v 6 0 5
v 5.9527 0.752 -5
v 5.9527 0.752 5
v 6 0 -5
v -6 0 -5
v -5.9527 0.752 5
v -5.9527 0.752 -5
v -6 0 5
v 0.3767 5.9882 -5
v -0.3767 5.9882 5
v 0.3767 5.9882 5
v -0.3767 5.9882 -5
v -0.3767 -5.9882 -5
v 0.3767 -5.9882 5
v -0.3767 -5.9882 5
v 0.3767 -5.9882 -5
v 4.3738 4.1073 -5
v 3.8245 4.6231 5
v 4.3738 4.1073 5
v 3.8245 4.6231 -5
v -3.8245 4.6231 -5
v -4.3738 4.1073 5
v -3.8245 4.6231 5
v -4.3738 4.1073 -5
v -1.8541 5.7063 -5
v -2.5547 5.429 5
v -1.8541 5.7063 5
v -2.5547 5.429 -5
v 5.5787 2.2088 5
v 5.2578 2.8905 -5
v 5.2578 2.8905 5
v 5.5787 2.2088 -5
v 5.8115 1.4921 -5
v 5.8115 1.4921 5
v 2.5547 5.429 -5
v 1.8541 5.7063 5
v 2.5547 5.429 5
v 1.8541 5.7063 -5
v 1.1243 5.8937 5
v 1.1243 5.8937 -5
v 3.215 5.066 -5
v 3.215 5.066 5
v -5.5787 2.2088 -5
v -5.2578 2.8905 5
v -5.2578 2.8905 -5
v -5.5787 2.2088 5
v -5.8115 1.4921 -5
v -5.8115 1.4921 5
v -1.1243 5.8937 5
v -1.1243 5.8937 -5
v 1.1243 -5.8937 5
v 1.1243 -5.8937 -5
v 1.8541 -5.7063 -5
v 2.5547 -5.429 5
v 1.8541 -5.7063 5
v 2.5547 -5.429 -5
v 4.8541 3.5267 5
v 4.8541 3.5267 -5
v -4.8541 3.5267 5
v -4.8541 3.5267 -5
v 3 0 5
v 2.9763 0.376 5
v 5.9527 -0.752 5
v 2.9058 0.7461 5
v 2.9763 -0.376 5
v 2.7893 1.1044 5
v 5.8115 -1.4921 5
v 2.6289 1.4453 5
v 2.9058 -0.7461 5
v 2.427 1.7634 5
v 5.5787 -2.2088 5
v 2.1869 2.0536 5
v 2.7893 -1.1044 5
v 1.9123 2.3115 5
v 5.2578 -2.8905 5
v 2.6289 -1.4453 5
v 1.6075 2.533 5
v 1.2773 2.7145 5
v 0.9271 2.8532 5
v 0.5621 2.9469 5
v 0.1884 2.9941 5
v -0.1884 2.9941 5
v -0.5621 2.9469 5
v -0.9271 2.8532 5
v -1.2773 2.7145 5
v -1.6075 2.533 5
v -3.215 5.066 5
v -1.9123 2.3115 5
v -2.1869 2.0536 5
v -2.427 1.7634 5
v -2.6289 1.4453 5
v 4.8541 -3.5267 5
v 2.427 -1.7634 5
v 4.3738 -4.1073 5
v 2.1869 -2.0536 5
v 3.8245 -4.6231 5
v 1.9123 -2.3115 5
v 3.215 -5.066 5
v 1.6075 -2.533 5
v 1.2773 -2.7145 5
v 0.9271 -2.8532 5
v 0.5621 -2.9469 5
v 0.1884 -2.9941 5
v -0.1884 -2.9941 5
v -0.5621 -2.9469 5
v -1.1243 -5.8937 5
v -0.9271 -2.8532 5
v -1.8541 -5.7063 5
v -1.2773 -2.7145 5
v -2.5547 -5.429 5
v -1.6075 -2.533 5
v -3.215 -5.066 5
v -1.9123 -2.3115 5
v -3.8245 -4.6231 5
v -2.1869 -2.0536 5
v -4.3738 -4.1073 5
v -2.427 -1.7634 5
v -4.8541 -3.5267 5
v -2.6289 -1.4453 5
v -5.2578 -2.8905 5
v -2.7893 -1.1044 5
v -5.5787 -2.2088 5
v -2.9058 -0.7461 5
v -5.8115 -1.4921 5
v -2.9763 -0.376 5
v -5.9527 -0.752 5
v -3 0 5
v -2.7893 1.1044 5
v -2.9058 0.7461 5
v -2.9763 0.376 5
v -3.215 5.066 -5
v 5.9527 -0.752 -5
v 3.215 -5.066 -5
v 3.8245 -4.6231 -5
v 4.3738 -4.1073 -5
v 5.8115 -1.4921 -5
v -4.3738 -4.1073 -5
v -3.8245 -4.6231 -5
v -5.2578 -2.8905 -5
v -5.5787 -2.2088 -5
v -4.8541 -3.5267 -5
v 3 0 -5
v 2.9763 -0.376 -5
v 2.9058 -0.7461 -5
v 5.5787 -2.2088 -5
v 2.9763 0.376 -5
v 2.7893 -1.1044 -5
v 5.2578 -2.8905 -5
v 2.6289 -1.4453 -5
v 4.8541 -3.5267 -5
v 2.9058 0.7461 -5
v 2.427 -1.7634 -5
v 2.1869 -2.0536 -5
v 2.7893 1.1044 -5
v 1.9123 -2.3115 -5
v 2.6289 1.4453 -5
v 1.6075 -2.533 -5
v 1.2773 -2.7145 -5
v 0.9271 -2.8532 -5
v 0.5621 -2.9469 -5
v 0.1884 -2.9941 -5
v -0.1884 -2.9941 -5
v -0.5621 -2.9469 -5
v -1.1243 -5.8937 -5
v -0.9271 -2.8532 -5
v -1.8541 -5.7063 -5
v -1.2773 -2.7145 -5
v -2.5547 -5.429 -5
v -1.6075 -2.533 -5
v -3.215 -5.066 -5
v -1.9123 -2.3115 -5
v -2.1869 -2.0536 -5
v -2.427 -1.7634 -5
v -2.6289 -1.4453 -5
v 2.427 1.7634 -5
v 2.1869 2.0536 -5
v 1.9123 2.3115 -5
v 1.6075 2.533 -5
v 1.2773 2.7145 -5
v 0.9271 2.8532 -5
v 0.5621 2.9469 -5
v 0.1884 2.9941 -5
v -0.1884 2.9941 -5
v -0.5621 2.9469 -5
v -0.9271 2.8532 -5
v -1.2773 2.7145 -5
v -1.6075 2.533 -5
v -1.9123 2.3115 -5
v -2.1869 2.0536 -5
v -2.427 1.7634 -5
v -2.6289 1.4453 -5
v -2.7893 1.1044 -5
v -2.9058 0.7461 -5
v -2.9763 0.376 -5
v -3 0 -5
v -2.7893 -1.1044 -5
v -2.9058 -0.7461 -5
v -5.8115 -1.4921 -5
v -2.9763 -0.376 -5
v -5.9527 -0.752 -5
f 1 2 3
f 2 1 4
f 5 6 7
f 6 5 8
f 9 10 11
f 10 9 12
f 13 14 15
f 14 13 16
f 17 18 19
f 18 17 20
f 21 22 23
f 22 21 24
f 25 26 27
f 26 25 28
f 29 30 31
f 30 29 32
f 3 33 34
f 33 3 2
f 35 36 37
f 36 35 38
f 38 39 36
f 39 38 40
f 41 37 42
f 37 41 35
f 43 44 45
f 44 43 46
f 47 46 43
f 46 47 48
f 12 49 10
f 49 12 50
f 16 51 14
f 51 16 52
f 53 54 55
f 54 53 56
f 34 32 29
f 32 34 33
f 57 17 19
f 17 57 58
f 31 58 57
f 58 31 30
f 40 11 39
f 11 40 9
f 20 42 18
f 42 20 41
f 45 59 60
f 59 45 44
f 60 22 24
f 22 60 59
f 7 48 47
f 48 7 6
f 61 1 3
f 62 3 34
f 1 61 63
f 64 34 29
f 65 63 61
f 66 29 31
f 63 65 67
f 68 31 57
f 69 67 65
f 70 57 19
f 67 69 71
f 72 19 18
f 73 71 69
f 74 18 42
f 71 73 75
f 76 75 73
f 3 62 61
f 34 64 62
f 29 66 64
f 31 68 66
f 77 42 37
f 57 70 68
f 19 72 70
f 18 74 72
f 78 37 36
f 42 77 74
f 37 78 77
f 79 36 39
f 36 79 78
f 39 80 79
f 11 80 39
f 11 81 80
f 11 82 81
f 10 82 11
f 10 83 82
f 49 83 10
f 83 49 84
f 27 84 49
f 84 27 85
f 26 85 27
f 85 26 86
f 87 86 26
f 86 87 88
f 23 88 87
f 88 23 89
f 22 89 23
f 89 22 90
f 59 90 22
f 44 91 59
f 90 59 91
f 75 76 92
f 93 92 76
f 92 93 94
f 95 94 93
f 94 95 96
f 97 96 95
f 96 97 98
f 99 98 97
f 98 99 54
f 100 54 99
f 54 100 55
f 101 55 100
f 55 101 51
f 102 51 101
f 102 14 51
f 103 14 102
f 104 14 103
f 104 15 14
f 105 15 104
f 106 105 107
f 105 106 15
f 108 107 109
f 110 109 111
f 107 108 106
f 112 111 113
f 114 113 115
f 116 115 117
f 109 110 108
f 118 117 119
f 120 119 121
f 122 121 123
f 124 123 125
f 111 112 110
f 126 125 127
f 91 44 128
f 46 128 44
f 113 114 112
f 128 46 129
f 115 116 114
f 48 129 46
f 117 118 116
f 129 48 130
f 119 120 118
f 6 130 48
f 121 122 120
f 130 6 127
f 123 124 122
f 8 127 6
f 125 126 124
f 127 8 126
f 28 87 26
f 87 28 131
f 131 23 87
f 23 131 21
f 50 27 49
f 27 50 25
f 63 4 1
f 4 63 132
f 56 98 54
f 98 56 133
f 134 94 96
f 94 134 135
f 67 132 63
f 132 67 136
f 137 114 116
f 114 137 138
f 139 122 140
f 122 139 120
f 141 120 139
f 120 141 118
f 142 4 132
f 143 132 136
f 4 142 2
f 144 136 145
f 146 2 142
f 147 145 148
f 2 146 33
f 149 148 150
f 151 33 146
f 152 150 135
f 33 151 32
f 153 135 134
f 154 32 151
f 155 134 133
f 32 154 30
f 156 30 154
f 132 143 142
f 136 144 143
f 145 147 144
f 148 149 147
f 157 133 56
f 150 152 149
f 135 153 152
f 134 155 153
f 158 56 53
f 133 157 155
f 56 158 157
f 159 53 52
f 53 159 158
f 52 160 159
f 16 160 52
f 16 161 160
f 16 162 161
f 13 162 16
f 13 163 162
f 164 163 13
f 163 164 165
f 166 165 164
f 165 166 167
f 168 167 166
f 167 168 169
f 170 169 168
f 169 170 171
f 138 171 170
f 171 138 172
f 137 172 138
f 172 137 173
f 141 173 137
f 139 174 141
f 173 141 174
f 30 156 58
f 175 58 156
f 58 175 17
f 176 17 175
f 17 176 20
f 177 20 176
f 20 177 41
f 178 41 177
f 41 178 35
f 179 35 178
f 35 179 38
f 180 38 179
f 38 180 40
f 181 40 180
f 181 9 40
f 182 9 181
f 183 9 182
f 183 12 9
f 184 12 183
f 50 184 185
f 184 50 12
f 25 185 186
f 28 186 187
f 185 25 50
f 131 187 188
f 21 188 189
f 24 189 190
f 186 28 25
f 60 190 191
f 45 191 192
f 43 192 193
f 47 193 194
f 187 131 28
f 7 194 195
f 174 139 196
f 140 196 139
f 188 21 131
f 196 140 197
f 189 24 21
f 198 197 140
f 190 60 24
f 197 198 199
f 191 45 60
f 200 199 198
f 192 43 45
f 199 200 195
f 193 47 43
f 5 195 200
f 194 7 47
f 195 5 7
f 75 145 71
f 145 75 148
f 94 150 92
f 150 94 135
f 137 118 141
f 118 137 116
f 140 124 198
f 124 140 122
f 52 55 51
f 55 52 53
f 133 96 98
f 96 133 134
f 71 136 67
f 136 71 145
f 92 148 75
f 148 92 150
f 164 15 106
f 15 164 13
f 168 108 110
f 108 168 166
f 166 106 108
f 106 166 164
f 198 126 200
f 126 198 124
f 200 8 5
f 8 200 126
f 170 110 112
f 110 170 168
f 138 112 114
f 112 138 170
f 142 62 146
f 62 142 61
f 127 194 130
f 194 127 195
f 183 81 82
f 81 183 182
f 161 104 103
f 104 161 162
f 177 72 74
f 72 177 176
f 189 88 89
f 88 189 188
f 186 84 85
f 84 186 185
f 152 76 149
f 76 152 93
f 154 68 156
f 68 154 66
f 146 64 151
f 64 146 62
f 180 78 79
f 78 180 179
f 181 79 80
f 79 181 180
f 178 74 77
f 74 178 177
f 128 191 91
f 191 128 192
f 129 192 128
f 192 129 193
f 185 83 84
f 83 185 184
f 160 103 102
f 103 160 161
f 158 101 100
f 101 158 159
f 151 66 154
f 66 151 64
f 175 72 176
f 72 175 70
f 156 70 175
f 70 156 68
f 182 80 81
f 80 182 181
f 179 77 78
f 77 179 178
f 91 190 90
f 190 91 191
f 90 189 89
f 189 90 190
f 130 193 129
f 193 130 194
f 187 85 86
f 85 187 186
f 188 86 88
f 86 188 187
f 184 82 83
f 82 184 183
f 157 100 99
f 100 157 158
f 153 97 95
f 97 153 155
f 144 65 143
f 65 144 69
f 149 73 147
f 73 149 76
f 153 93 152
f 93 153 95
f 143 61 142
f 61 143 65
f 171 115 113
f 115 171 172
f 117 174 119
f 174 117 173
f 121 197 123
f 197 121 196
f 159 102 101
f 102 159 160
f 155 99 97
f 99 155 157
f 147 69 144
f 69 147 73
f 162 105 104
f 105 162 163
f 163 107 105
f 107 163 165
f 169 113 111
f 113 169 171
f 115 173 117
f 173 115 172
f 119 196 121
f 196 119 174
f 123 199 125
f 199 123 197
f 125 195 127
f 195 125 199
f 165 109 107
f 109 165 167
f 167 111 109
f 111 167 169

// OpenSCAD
$fn = 50;


difference() {
	union() {
		translate(v = [0, 0, -5.0000000000]) {
			cylinder(h = 10, r = 6.0000000000);
		}
	}
	union() {
		translate(v = [0, 0, -100.0000000000]) {
			cylinder(h = 200, r = 3);
		}
	}
}
